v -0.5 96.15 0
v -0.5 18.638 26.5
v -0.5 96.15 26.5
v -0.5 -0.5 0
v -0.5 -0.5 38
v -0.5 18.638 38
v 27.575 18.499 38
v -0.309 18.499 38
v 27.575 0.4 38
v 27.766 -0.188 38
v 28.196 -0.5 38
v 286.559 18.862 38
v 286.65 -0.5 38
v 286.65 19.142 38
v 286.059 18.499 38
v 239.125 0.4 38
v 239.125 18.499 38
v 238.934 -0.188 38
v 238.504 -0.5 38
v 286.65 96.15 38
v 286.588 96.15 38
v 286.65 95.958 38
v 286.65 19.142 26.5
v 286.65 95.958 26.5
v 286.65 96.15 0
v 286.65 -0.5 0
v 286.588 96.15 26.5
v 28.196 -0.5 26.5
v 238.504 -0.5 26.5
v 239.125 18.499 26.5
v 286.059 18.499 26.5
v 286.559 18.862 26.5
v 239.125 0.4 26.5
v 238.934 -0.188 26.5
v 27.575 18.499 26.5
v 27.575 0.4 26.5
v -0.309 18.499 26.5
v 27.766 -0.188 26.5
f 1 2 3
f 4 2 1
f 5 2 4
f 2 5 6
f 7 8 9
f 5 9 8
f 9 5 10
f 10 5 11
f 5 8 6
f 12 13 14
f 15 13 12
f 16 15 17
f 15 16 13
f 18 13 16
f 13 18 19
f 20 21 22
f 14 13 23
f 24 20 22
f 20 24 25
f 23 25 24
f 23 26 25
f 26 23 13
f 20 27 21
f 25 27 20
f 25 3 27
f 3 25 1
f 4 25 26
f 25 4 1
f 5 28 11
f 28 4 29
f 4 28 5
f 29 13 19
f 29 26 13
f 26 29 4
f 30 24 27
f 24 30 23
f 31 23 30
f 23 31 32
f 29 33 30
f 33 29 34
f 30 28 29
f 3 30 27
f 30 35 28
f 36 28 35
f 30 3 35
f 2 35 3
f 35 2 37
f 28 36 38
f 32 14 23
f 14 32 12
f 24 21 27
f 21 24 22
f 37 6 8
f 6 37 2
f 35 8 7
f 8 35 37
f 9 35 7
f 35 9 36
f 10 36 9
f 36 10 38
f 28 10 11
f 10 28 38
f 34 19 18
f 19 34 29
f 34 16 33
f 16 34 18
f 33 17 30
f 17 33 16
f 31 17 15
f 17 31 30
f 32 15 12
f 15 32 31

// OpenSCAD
// file: scad-utils/so3.scad
// so3

use <linalg.scad>

function rodrigues_so3_exp(w, A, B) = [
[1.0 - B*(w[1]*w[1] + w[2]*w[2]), B*(w[0]*w[1]) - A*w[2],          B*(w[0]*w[2]) + A*w[1]],
[B*(w[0]*w[1]) + A*w[2],          1.0 - B*(w[0]*w[0] + w[2]*w[2]), B*(w[1]*w[2]) - A*w[0]],
[B*(w[0]*w[2]) - A*w[1],          B*(w[1]*w[2]) + A*w[0],          1.0 - B*(w[0]*w[0] + w[1]*w[1])]
];

function so3_exp(w) = so3_exp_rad(w/180*PI);
function so3_exp_rad(w) =
combine_so3_exp(w,
	w*w < 1e-8 
	? so3_exp_1(w*w)
	: w*w < 1e-6
	  ? so3_exp_2(w*w)
	  : so3_exp_3(w*w));

function combine_so3_exp(w,AB) = rodrigues_so3_exp(w,AB[0],AB[1]);

// Taylor series expansions close to 0
function so3_exp_1(theta_sq) = [
	1 - 1/6*theta_sq, 
	0.5
];

function so3_exp_2(theta_sq) = [
	1.0 - theta_sq * (1.0 - theta_sq/20) / 6,
	0.5 - 0.25/6 * theta_sq
];

function so3_exp_3_0(theta_deg, inv_theta) = [
	sin(theta_deg) * inv_theta,
	(1 - cos(theta_deg)) * (inv_theta * inv_theta)
];

function so3_exp_3(theta_sq) = so3_exp_3_0(sqrt(theta_sq)*180/PI, 1/sqrt(theta_sq));


function rot_axis_part(m) = [m[2][1] - m[1][2], m[0][2] - m[2][0], m[1][0] - m[0][1]]*0.5;

function so3_ln(m) = 180/PI*so3_ln_rad(m);
function so3_ln_rad(m) = so3_ln_0(m,
	cos_angle = rot_cos_angle(m),
	preliminary_result = rot_axis_part(m));

function so3_ln_0(m, cos_angle, preliminary_result) = 
so3_ln_1(m, cos_angle, preliminary_result, 
	sin_angle_abs = sqrt(preliminary_result*preliminary_result));

function so3_ln_1(m, cos_angle, preliminary_result, sin_angle_abs) = 
	cos_angle > sqrt(1/2)
	? sin_angle_abs > 0
	  ? preliminary_result * asin(sin_angle_abs)*PI/180 / sin_angle_abs
	  : preliminary_result
	: cos_angle > -sqrt(1/2)
	  ? preliminary_result * acos(cos_angle)*PI/180 / sin_angle_abs
	  : so3_get_symmetric_part_rotation(
	      preliminary_result,
	      m,
	      angle = PI - asin(sin_angle_abs)*PI/180,
	      d0 = m[0][0] - cos_angle,
	      d1 = m[1][1] - cos_angle,
	      d2 = m[2][2] - cos_angle
			);

function so3_get_symmetric_part_rotation(preliminary_result, m, angle, d0, d1, d2) =
so3_get_symmetric_part_rotation_0(preliminary_result,angle,so3_largest_column(m, d0, d1, d2));

function so3_get_symmetric_part_rotation_0(preliminary_result, angle, c_max) =
	angle * unit(c_max * preliminary_result < 0 ? -c_max : c_max);

function so3_largest_column(m, d0, d1, d2) =
		d0*d0 > d1*d1 && d0*d0 > d2*d2
		?	[d0, (m[1][0]+m[0][1])/2, (m[0][2]+m[2][0])/2]
		: d1*d1 > d2*d2
		  ? [(m[1][0]+m[0][1])/2, d1, (m[2][1]+m[1][2])/2]
		  : [(m[0][2]+m[2][0])/2, (m[2][1]+m[1][2])/2, d2];

__so3_test = [12,-125,110];
echo(UNITTEST_so3=norm(__so3_test-so3_ln(so3_exp(__so3_test))) < 1e-8);
// file: scad-utils/lists.scad
// List helpers

/*!
  Flattens a list one level:

  flatten([[0,1],[2,3]]) => [0,1,2,3]
*/
function flatten(list) = [ for (i = list, v = i) v ];


/*!
  Creates a list from a range:

  range([0:2:6]) => [0,2,4,6]
*/
function range(r) = [ for(x=r) x ];

/*!
  Reverses a list:

  reverse([1,2,3]) => [3,2,1]
*/
function reverse(list) = [for (i = [len(list)-1:-1:0]) list[i]];

/*!
  Extracts a subarray from index begin (inclusive) to end (exclusive)
  FIXME: Change name to use list instead of array?

  subarray([1,2,3,4], 1, 2) => [2,3]
*/
function subarray(list,begin=0,end=-1) = [
    let(end = end < 0 ? len(list) : end)
      for (i = [begin : 1 : end-1])
        list[i]
];

/*!
  Returns a copy of a list with the element at index i set to x

  set([1,2,3,4], 2, 5) => [1,2,5,4]
*/
function set(list, i, x) = [for (i_=[0:len(list)-1]) i == i_ ? x : list[i_]];

/*!
  Remove element from the list by index.
  remove([4,3,2,1],1) => [4,2,1]
*/
function remove(list, i) = [for (i_=[0:1:len(list)-2]) list[i_ < i ? i_ : i_ + 1]];
// file: scad-utils/linalg.scad
// very minimal set of linalg functions needed by so3, se3 etc.

// cross and norm are builtins
//function cross(x,y) = [x[1]*y[2]-x[2]*y[1], x[2]*y[0]-x[0]*y[2], x[0]*y[1]-x[1]*y[0]];
//function norm(v) = sqrt(v*v);

function vec3(p) = len(p) < 3 ? concat(p,0) : p;
function vec4(p) = let (v3=vec3(p)) len(v3) < 4 ? concat(v3,1) : v3;
function unit(v) = v/norm(v);

function identity3()=[[1,0,0],[0,1,0],[0,0,1]];
function identity4()=[[1,0,0,0],[0,1,0,0],[0,0,1,0],[0,0,0,1]];


function take3(v) = [v[0],v[1],v[2]];
function tail3(v) = [v[3],v[4],v[5]];
function rotation_part(m) = [take3(m[0]),take3(m[1]),take3(m[2])];
function rot_trace(m) = m[0][0] + m[1][1] + m[2][2];
function rot_cos_angle(m) = (rot_trace(m)-1)/2;

function rotation_part(m) = [take3(m[0]),take3(m[1]),take3(m[2])];
function translation_part(m) = [m[0][3],m[1][3],m[2][3]];
function transpose_3(m) = [[m[0][0],m[1][0],m[2][0]],[m[0][1],m[1][1],m[2][1]],[m[0][2],m[1][2],m[2][2]]];
function transpose_4(m) = [[m[0][0],m[1][0],m[2][0],m[3][0]],
                           [m[0][1],m[1][1],m[2][1],m[3][1]],
                           [m[0][2],m[1][2],m[2][2],m[3][2]],
                           [m[0][3],m[1][3],m[2][3],m[3][3]]];
function invert_rt(m) = construct_Rt(transpose_3(rotation_part(m)), -(transpose_3(rotation_part(m)) * translation_part(m)));
function construct_Rt(R,t) = [concat(R[0],t[0]),concat(R[1],t[1]),concat(R[2],t[2]),[0,0,0,1]];

// Hadamard product of n-dimensional arrays
function hadamard(a,b) = !(len(a)>0) ? a*b : [ for(i = [0:len(a)-1]) hadamard(a[i],b[i]) ];
// file: scad-utils/se3.scad
use <linalg.scad>
use <so3.scad>

function combine_se3_exp(w, ABt) = construct_Rt(rodrigues_so3_exp(w, ABt[0], ABt[1]), ABt[2]);

// [A,B,t]
function se3_exp_1(t,w) = concat(
	so3_exp_1(w*w),
	[t + 0.5 * cross(w,t)]
);

function se3_exp_2(t,w) = se3_exp_2_0(t,w,w*w);
function se3_exp_2_0(t,w,theta_sq) =
se3_exp_23(
	so3_exp_2(theta_sq),
	C = (1.0 - theta_sq/20) / 6,
	t=t,w=w);

function se3_exp_3(t,w) = se3_exp_3_0(t,w,sqrt(w*w)*180/PI,1/sqrt(w*w));

function se3_exp_3_0(t,w,theta_deg,inv_theta) =
se3_exp_23(
	so3_exp_3_0(theta_deg = theta_deg, inv_theta = inv_theta),
	C = (1 - sin(theta_deg) * inv_theta) * (inv_theta * inv_theta),
	t=t,w=w);

function se3_exp_23(AB,C,t,w) =
[AB[0], AB[1], t + AB[1] * cross(w,t) + C * cross(w,cross(w,t)) ];

function se3_exp(mu) = se3_exp_0(t=take3(mu),w=tail3(mu)/180*PI);

function se3_exp_0(t,w) =
combine_se3_exp(w,
// Evaluate by Taylor expansion when near 0
	w*w < 1e-8
	? se3_exp_1(t,w)
	: w*w < 1e-6
	  ? se3_exp_2(t,w)
	  : se3_exp_3(t,w)
);

function se3_ln(m) = se3_ln_to_deg(se3_ln_rad(m));
function se3_ln_to_deg(v) = concat(take3(v),tail3(v)*180/PI);

function se3_ln_rad(m) = se3_ln_0(m,
	rot = so3_ln_rad(rotation_part(m)));
function se3_ln_0(m,rot) = se3_ln_1(m,rot,
	theta = sqrt(rot*rot));
function se3_ln_1(m,rot,theta) = se3_ln_2(m,rot,theta,
	shtot = theta > 0.00001 ? sin(theta/2*180/PI)/theta : 0.5,
	halfrotator = so3_exp_rad(rot * -.5));
function se3_ln_2(m,rot,theta,shtot,halfrotator) =
concat( (halfrotator * translation_part(m) -
	(theta > 0.001
	? rot * ((translation_part(m) * rot) * (1-2*shtot) / (rot*rot))
	: rot * ((translation_part(m) * rot)/24)
	)) / (2 * shtot), rot);

__se3_test = [20,-40,60,-80,100,-120];
echo(UNITTEST_se3=norm(__se3_test-se3_ln(se3_exp(__se3_test))) < 1e-8);
// file: list-comprehension-demos/util/reverse.scad
/**
* reverse.scad
*
* @copyright Justin Lin, 2019
* @license https://opensource.org/licenses/lgpl-3.0.html
*
* @see https://openhome.cc/eGossip/OpenSCAD/lib3x-reverse.html
*
**/ 

function reverse(lt) = [for(i = len(lt) - 1; i > -1; i = i - 1) lt[i]];
// file: scad-utils/mirror.scad
// Copyright (c) 2013 Oskar Linde. All rights reserved.
// License: BSD
//
// This library contains simple mirroring functions
//
// mirror_x()
// mirror_y()
// mirror_z()


module mirror_x() {
  union() {
    child();
    scale([-1,1,1]) child();
  }
}

module mirror_y() {
  union() {
    child();
    scale([1,-1,1]) child();
  }
}

module mirror_z() {
  union() {
    child();
    scale([1,1,-1]) child();
  }
}
// file: scad-utils/shapes.scad
function square(size) = [[-size,-size], [-size,size], [size,size], [size,-size]] / 2;

function circle(r) = [for (i=[0:$fn-1]) let (a=i*360/$fn) r * [cos(a), sin(a)]];

function regular(r, n) = circle(r, $fn=n);

function rectangle_profile(size=[1,1]) = [	
	// The first point is the anchor point, put it on the point corresponding to [cos(0),sin(0)]
	[ size[0]/2,  0], 
	[ size[0]/2,  size[1]/2],
	[-size[0]/2,  size[1]/2],
	[-size[0]/2, -size[1]/2],
	[ size[0]/2, -size[1]/2],
];

// FIXME: Move rectangle and rounded rectangle from extrusion
// file: scad-utils/transformations.scad
use <se3.scad>
use <linalg.scad>
use <lists.scad>

/*!
  Creates a rotation matrix

  xyz = euler angles = rz * ry * rx
  axis = rotation_axis * rotation_angle
*/
function rotation(xyz=undef, axis=undef) = 
	xyz != undef && axis != undef ? undef :
	xyz == undef  ? se3_exp([0,0,0,axis[0],axis[1],axis[2]]) :
	len(xyz) == undef ? rotation(axis=[0,0,xyz]) :
	(len(xyz) >= 3 ? rotation(axis=[0,0,xyz[2]]) : identity4()) *
	(len(xyz) >= 2 ? rotation(axis=[0,xyz[1],0]) : identity4()) *
	(len(xyz) >= 1 ? rotation(axis=[xyz[0],0,0]) : identity4());

/*!
  Creates a scaling matrix
*/
function scaling(v) = [
	[v[0],0,0,0],
	[0,v[1],0,0],
	[0,0,v[2],0],
	[0,0,0,1],
];

/*!
  Creates a translation matrix
*/
function translation(v) = [
	[1,0,0,v[0]],
	[0,1,0,v[1]],
	[0,0,1,v[2]],
	[0,0,0,1],
];

// Convert between cartesian and homogenous coordinates
function project(x) = subarray(x,end=len(x)-1) / x[len(x)-1];

function transform(m, list) = [for (p=list) project(m * vec4(p))];
function to_3d(list) = [ for(v = list) vec3(v) ];
// file: list-comprehension-demos/sweep.scad
/**
* sweep.scad
*
* @copyright Justin Lin, 2020
* @license https://opensource.org/licenses/lgpl-3.0.html
*
* @see https://openhome.cc/eGossip/OpenSCAD/lib3x-sweep.html
*
**/

use <util/reverse.scad>

module sweep(sections, triangles = "SOLID") {

    function side_indexes(sects, begin_idx = 0) = 
        let(       
            leng_sects = len(sects),
            leng_pts_sect = len(sects[0]),
            range_j = [begin_idx:leng_pts_sect:begin_idx + (leng_sects - 2) * leng_pts_sect],
            range_i = [0:leng_pts_sect - 1]
        ) 
        concat(
            [
                for(j = range_j, i = range_i)
                let(i2 = j + (i + 1) % leng_pts_sect)
                [
                    j + i, 
                    i2, 
                    i2 + leng_pts_sect
                ]
            ],
            [
                for(j = range_j, i = range_i)
                let(ji = j + i)
                [
                    ji, 
                    j + (i + 1) % leng_pts_sect + leng_pts_sect , 
                    ji + leng_pts_sect
                ]
            ]      
        );

    
    function the_same_after_twisting(f_sect, l_sect) =
        let(found = search([l_sect[0]], f_sect)[0], leng = len(l_sect))
        found != [] && 
        len([for(i = 0; l_sect[i] == f_sect[(found + i) % leng]; i = i + 1) undef]) == leng;

    function to_v_pts(sects) = [for(sect = sects) each sect];                   

    module solid_sections(sects) {
        leng_sects = len(sects);
        leng_pts_sect = len(sects[0]);
        first_sect = sects[0];
        last_sect = sects[leng_sects - 1];
   
        v_pts = to_v_pts(sects);

        begin_end_the_same =
            first_sect == last_sect || the_same_after_twisting(first_sect, last_sect);

        if(begin_end_the_same) {
            f_idxes = side_indexes(sects);

            polyhedron(v_pts, f_idxes); 

            // hook for testing
            test_sweep_solid(v_pts, f_idxes, triangles);
        } else {
            from = leng_pts_sect * (leng_sects - 1);
            f_idxes = [
                [each [leng_pts_sect - 1:-1:0]], 
                each side_indexes(sects), 
                [each [from:from + leng_pts_sect - 1]]
            ];
            
            polyhedron(v_pts, f_idxes);   

            // hook for testing
            test_sweep_solid(v_pts, f_idxes, triangles);             
        }
    }

    module hollow_sections(sects) {
        leng_sects = len(sects);
        leng_sect = len(sects[0]);
        half_leng_sect = leng_sect / 2;
        half_leng_v_pts = leng_sects * half_leng_sect;

        function strip_sects(begin_idx, end_idx) = 
            let(range = [begin_idx:end_idx])
            [for(sect = sects) [for(j = range) sect[j]]]; 

        range = [0:half_leng_sect - 1];
        function first_idxes() = 
            [
                for(i = range) 
                let(i3 = (i + 1) % half_leng_sect)
                [
                    i,
                    i + half_leng_v_pts,
                    i3 + half_leng_v_pts, 
                    i3
                ] 
            ];

        function last_idxes(begin_idx) = 
            [
                for(i = range) 
                let(bi = begin_idx + i, i2 = begin_idx + (i + 1) % half_leng_sect)
                [
                    bi,
                    i2,
                    i2 + half_leng_v_pts,
                    bi + half_leng_v_pts
                ]     
            ];            

        outer_sects = strip_sects(0, half_leng_sect - 1);
        inner_sects = strip_sects(half_leng_sect, leng_sect - 1);

        outer_idxes = side_indexes(outer_sects);
        inner_idxes = [for(idxes = side_indexes(inner_sects, half_leng_v_pts)) reverse(idxes)];

        first_outer_sect = outer_sects[0];
        last_outer_sect = outer_sects[leng_sects - 1];
        first_inner_sect = inner_sects[0];
        last_inner_sect = inner_sects[leng_sects - 1];
        
        leng_pts_sect = len(first_outer_sect);

        begin_end_the_same = 
           (first_outer_sect == last_outer_sect && first_inner_sect == last_inner_sect) ||
           (
               the_same_after_twisting(first_outer_sect, last_outer_sect) && 
               the_same_after_twisting(first_inner_sect, last_inner_sect)
           ); 

        v_pts = concat(to_v_pts(outer_sects), to_v_pts(inner_sects));

        if(begin_end_the_same) {
            f_idxes = concat(outer_idxes, inner_idxes);

            polyhedron(
                v_pts,
                f_idxes
            );      

            // hook for testing
            test_sweep_solid(v_pts, f_idxes, triangles);                     
        } else {
            f_idxes = concat(
                first_idxes(), 
                outer_idxes, 
                inner_idxes, 
                last_idxes(half_leng_v_pts - half_leng_sect)
            );
            
            polyhedron(
                v_pts,
                f_idxes
            ); 

            // hook for testing
            test_sweep_solid(v_pts, f_idxes, triangles);              
        }
    }
    
    module triangles_defined_sections() {
        faces = [
            [0, 1, 2], [3, 5, 4], 
            [1, 3, 4], [2, 1, 4], [2, 3, 0], 
            [0, 3, 1], [2, 4, 5], [2, 5, 3]
        ];
        module two_sections(section1, section2) {
            for(idx = triangles) {
                polyhedron(
                    concat(
                        [for(i = idx) section1[i]], 
                        [for(i = idx) section2[i]]
                    ),
                    faces
                );
            }
        }
        
        for(i = [0:len(sections) - 2]) {
             two_sections(
                 sections[i], 
                 sections[i + 1]
             );
        }
    }
    
    if(triangles == "SOLID") {
        solid_sections(sections);
    } else if(triangles == "HOLLOW") {
        hollow_sections(sections);
    }
    else {
        triangles_defined_sections();
    }
}

// override it to test

module test_sweep_solid(points, faces, triangles) {

}
// file: plate.scad
include <params.scad>
use <base.scad>
use <top_cutout.scad>

difference()
{
    top_cutout_2D();
    plate_2D();
}

module plate_2D()
{
    module mirrored(d) {
        children();
        mirror(d) children();
    }
    module stabil() {
        translate([0, -0.03]*inch()) {
            square([0.13, 0.55]*inch(), true);
            mirrored(y()) translate((0.55*inch()-2)/2*y()) square([0.13*inch()+1, 2], true);
        }
    }
    module switch() {
        square(0.55*inch(), true);
        mirrored(x()) mirrored(y())
        translate(0.1972/2*inch()*y()) square([0.6140/2, (0.55-0.1972)/2]*inch());
    }
    module cutout(unit) {
        if (unit == 6)  translate(0.5*unit()*x()) switch();
        else            switch();
        mirrored(x()) {
            if (unit == 6)                    {translate(2.5*unit()*x())     stabil(); }
            else if (2 <= unit && unit < 3)   {translate(-0.94/2*inch()*x()) stabil(); } 
            else if (3 <= unit && unit < 4.5) {translate(-1.50/2*inch()*x()) stabil(); } 
            else if (4.5 <= unit && unit < 8) {translate(-5.25/2*inch()*x()) stabil(); } 
        }
    }
    translate(plate_size()[1]*y())
    for (sw = switch_info) {
        pos = sw[0];
        rot = sw[1];
        unit = sw[2];
        row = sw[3];
        translate(pos) rotate(rot) cutout(unit);
    }
}
// file: scad-utils/morphology.scad
// Copyright (c) 2013 Oskar Linde. All rights reserved.
// License: BSD
//
// This library contains basic 2D morphology operations
//
// outset(d=1)            - creates a polygon at an offset d outside a 2D shape
// inset(d=1)             - creates a polygon at an offset d inside a 2D shape
// fillet(r=1)            - adds fillets of radius r to all concave corners of a 2D shape
// rounding(r=1)          - adds rounding to all convex corners of a 2D shape
// shell(d,center=false)  - makes a shell of width d along the edge of a 2D shape
//                        - positive values of d places the shell on the outside
//                        - negative values of d places the shell on the inside
//                        - center=true and positive d places the shell centered on the edge

module outset(d=1) {
	// Bug workaround for older OpenSCAD versions
	if (version_num() < 20130424) render() outset_extruded(d) child();
	else minkowski() {
		circle(r=d);
		child();
	}
}

module outset_extruded(d=1) {
   projection(cut=true) minkowski() {
        cylinder(r=d);
        linear_extrude(center=true) child();
   }
}

module inset(d=1) {
	 render() inverse() outset(d=d) inverse() child();
}

module fillet(r=1) {
	inset(d=r) render() outset(d=r) child();
}

module rounding(r=1) {
	outset(d=r) inset(d=r) child();
}

module shell(d,center=false) {
	if (center && d > 0) {
		difference() {
			outset(d=d/2) child();
			inset(d=d/2) child();
		}
	}
	if (!center && d > 0) {
		difference() {
			outset(d=d) child();
			child();
		}
	}
	if (!center && d < 0) {
		difference() {
			child();
			inset(d=-d) child();
		}
	}
	if (d == 0) child();
}


// Below are for internal use only

module inverse() {
	difference() {
		square(1e5,center=true);
		child();
	}
}


// TEST CODE

use <mirror.scad>

module arrow(l=1,w=.6,t=0.15) {
	mirror_y() polygon([[0,0],[l,0],[l-w/2,w/2],[l-w/2-sqrt(2)*t,w/2],[l-t/2-sqrt(2)*t,t/2],[0,t/2]]);
}

module shape() {
	polygon([[0,0],[1,0],[1.5,1],[2.5,1],[2,-1],[0,-1]]);
}

if(0) assign($fn=32) {

	for (p = [0:10*3-1]) assign(o=floor(p/3)) {
		translate([(p%3)*2.5,-o*3]) {
			//%if (p % 3 == 1) translate([0,0,1]) shape();
			if (p % 3 == 0) shape();
			if (p % 3 == 1) translate([0.6,0]) arrow();
			if (p % 3 == 2) {
				if (o == 0) inset(d=0.3) shape();
				if (o == 1) outset(d=0.3) shape();
				if (o == 2) rounding(r=0.3) shape();
				if (o == 3) fillet(r=0.3) shape();
				if (o == 4) shell(d=0.3) shape();
				if (o == 5) shell(d=-0.3) shape();
				if (o == 6) shell(d=0.3,center=true) shape();
				if (o == 7) rounding(r=0.3) fillet(r=0.3) shape();
				if (o == 8) shell(d=0.3,center=true) fillet(r=0.3) rounding(r=0.3) shape();
				if (o == 9) shell(d=-0.3) fillet(r=0.3) rounding(r=0.3) shape();
			}
		}
	}
}
// file: base.scad
use <list-comprehension-demos/sweep.scad>
use <scad-utils/transformations.scad>
use <scad-utils/shapes.scad>
include <params.scad>

// margin as 2D vector, to be added outside of the keyboard 
margin = [3, 2];

// tilt angle of the keyboard in degree unit
tilt = 10;

// ront_height height of the keyboard at front side. overall height will be
// calculated based on front_height and tilt_angle. make sure that there is
// enough room for PCB to be placed under the keyboard.
front_height = 14;

// roundnessness radius at side
roundness = 10;

// size of material to carve
block_size = [330, 130, 34];


module base()
{
    echo("size: ",[xmax()-xmin(), ymax()-ymin()]);
    echo("x: ", [xmin(), xmax()]);
    echo("y: ", [ymin(), ymax()]);
    echo(pow(2, 1/2));

    module side() {
        function shape(r) = [for (xy = half_circle) [xy[0]*r, xy[1]*r]];
        interval= concat(
                [for (i=[-10:20/30:10]) i],
                [for (i=[10:(py-20)/20:py-10]) i],
                [for (i=[py-10:20/20:py+10]) i]);
        transform1 = [for (i = interval)
            translation([0, i, traj(i)])
            * rotation((-90+atan(devi(i)))*x())
            * rotation(180*z())
        ];
        transform2 = [for (i = interval)
            translation([0, i, traj(i)-roundness*3])
            * rotation(-90*x())
            * scaling([1, 3, 1])
        ];
        intersection() {
            union() {
                sweep(shape(roundness), transform1);
                sweep(square(roundness*2), transform2);
            }
            translate([-roundness*2, -50]) cube([4*roundness, w+100, 50]);
        }
    }
    module proj() {
        projection() rotate(-90*y()) side();
    }

    translate(-mx*x()) side();
    rotate(90*y()) translate(-mx*z())
        linear_extrude(height=px+2*mx) proj();
    translate((px+mx)*x()) side();
    %translate([xmin(), ymin()]) cube([xmax()-xmin(), ymax()-ymin(), 36]);
}
translate(-[xmin(), ymin()]) base();


function inch() = 25.4;
function unit() = 19.05;
function x() = [1, 0, 0];
function y() = [0, 1, 0];
function z() = [0, 0, 1];

mx = margin[0];
my = margin[1];
px = plate_size[0];
py = plate_size[1];

R = 400;
h1 = front_height;
h2 = h1 + py*sin(tilt);
w = py*cos(tilt);

p = sq(h2-h1)/sq(w);
q = (sq(w)+sq(h2)-sq(h1))/(2*(h2-h1));
r = p+1;
s = -2*(p*q+h1);
t = p*sq(q)+sq(h1)-sq(R);
b = (-s+sqrt(sq(s)-4*r*t))/(2*r);
a = -sqrt(sq(R)-sq(h1-b));

o0 = 6;
o2 = 4;

function sq(x) = pow(x, 2);
function t1(x) = b - sqrt(sq(R) - sq(x-a))-roundness;
function t0(x) =
    let(b = my)
    let(a = d1(0) / (o0*pow(-b, o0-1)))
    let(c = t1(0) - a*pow(-b, o0))
    a*pow(x-b, o0)+c;
function t2(x) = 
    let(b = w+my)
    let(a = d1(w) / (o2*pow(w-b, o2-1)))
    let(c = t1(w) - a*pow(w-b, o2))
    a*pow(x-b, o2)+c;
function d1(x) = (x-a) / sqrt(sq(R) - sq(x-a));
function d0(x) = 
    let(b = my)
    let(a = d1(0) / (o0*pow(-b, o0-1)))
    let(c = t1(0) - a*pow(-b, o0))
    o0*a*pow(x-b, o0-1);
function d2(x) = 
    let(b = w+my)
    let(a = d1(w) / (o2*pow(w-b, o2-1)))
    let(c = t1(w) - a*pow(w-b, o2))
    o2*a*pow(x-b,o2-1);
function traj(x) =
    x <= 0 ? t0(x) :
    x <= w ? t1(x) : t2(x);
function devi(x) = 
    x <= 0 ? d0(x) :
    x <= w ? d1(x) : d2(x);
function ymin() = 
    let(b = my)
    let(a = d1(0) / (o0*pow(-b, o0-1)))
    let(c = t1(0) - a*pow(-b, o0))
    -abs(pow(-c/a, 1/o0))+b-roundness;
function ymax() =
    let(b = w+my)
    let(a = d1(w) / (o2*pow(w-b, o2-1)))
    let(c = t1(w) - a*pow(w-b, o2))
    abs(pow(-c/a, 1/o2))+b+roundness;
function xmin() = -mx-roundness;
function xmax() = px+mx+roundness;
function front_height() = front_height;
function tilt() = tilt;
function plate_size() = plate_size;
function block_size() = block_size;
function base_size() = [xmax()-xmin(), ymax()-ymin(), block_size[2]];
function block_height() = block_size[2];

half_circle = [for (i = [0 : 180/12 : 180]) [cos(i), sin(i)]];
// file: params.scad
plate_size = [286.150000, 95.650000] ;
switch_info = [[[9.525, -9.525], 0, 1, 0], [[28.575000000000003, -9.525], 0, 1, 0], [[47.625, -9.525], 0, 1, 0], [[66.67500000000001, -9.525], 0, 1, 0], [[85.72500000000001, -9.525], 0, 1, 0], [[104.775, -9.525], 0, 1, 0], [[123.825, -9.525], 0, 1, 0], [[142.875, -9.525], 0, 1, 0], [[161.925, -9.525], 0, 1, 0], [[180.97500000000002, -9.525], 0, 1, 0], [[200.02500000000003, -9.525], 0, 1, 0], [[219.07500000000005, -9.525], 0, 1, 0], [[238.12500000000006, -9.525], 0, 1, 0], [[257.17500000000007, -9.525], 0, 1, 0], [[276.225, -9.525], 0, 1, 0], [[14.287500000000001, -28.575000000000003], 0, 1.5, 1], [[38.1, -28.575000000000003], 0, 1, 1], [[57.15, -28.575000000000003], 0, 1, 1], [[76.2, -28.575000000000003], 0, 1, 1], [[95.25, -28.575000000000003], 0, 1, 1], [[114.3, -28.575000000000003], 0, 1, 1], [[133.35, -28.575000000000003], 0, 1, 1], [[152.4, -28.575000000000003], 0, 1, 1], [[171.45000000000002, -28.575000000000003], 0, 1, 1], [[190.50000000000003, -28.575000000000003], 0, 1, 1], [[209.55000000000004, -28.575000000000003], 0, 1, 1], [[228.60000000000005, -28.575000000000003], 0, 1, 1], [[247.65000000000006, -28.575000000000003], 0, 1, 1], [[271.4625000000001, -28.575000000000003], 0, 1.5, 1], [[16.66875, -47.625], 0, 1.75, 2], [[42.8625, -47.625], 0, 1, 2], [[61.9125, -47.625], 0, 1, 2], [[80.9625, -47.625], 0, 1, 2], [[100.0125, -47.625], 0, 1, 2], [[119.0625, -47.625], 0, 1, 2], [[138.1125, -47.625], 0, 1, 2], [[157.16250000000002, -47.625], 0, 1, 2], [[176.21250000000003, -47.625], 0, 1, 2], [[195.26250000000005, -47.625], 0, 1, 2], [[214.31250000000006, -47.625], 0, 1, 2], [[233.36250000000007, -47.625], 0, 1, 2], [[264.3187500000001, -47.625], 0, 2.25, 2], [[21.431250000000002, -66.67500000000001], 0, 2.25, 3], [[52.3875, -66.67500000000001], 0, 1, 3], [[71.43750000000001, -66.67500000000001], 0, 1, 3], [[90.48750000000001, -66.67500000000001], 0, 1, 3], [[109.53750000000001, -66.67500000000001], 0, 1, 3], [[128.5875, -66.67500000000001], 0, 1, 3], [[147.63750000000002, -66.67500000000001], 0, 1, 3], [[166.68750000000003, -66.67500000000001], 0, 1, 3], [[185.73750000000004, -66.67500000000001], 0, 1, 3], [[204.78750000000005, -66.67500000000001], 0, 1, 3], [[223.83750000000006, -66.67500000000001], 0, 1, 3], [[250.03125000000006, -66.67500000000001], 0, 1.75, 3], [[276.225, -66.67500000000001], 0, 1, 3], [[38.1, -85.72500000000001], 0, 1, 4], [[61.9125, -85.72500000000001], 0, 1.5, 4], [[133.35000000000002, -85.72500000000001], 0, 6, 4], [[204.7875, -85.72500000000001], 0, 1.5, 4], [[228.6, -85.72500000000001], 0, 1, 4]] ;
// main file
include <params.scad>
use <base.scad>
use <scad-utils/morphology.scad>
use <plate.scad>

// maximum distance from top of your keyboard to switch mount surface.
lip_depth = 7.5;

// margin between case and switches
margin = 0.5;

top_cutout();
module top_cutout_2D()
{
    translate(plate_size()[1]*y())
    outset(r=margin, $fn=10)
    for (sw = switch_info) {
        pos = sw[0];
        rot = sw[1];
        u = sw[2];
        translate(pos) rotate(rot) square([u, 1]*unit(), true);
    }
}

module top_cutout()
{
    difference()
    {
        translate(-[1, 1]*margin)
        cube([plate_size()[0]+2*margin, plate_size()[1]+2*margin, block_height()+4]);
        translate((block_height()-lip_depth)*z())
        linear_extrude(height=lip_depth+4+0.1)
        top_cutout_2D();

        /* translate((block_height()-lip_depth()-5-0.5)*z()) */
        /* linear_extrude(height=lip_depth()+5+0.1+0.5+4) */
        /* plate_2D(); */
    }
}

function tilted_height() =
    front_height() + (ymax()-ymin())*sin(tilt());

function lip_depth() = lip_depth;

echo("tilted_height:", tilted_height());
